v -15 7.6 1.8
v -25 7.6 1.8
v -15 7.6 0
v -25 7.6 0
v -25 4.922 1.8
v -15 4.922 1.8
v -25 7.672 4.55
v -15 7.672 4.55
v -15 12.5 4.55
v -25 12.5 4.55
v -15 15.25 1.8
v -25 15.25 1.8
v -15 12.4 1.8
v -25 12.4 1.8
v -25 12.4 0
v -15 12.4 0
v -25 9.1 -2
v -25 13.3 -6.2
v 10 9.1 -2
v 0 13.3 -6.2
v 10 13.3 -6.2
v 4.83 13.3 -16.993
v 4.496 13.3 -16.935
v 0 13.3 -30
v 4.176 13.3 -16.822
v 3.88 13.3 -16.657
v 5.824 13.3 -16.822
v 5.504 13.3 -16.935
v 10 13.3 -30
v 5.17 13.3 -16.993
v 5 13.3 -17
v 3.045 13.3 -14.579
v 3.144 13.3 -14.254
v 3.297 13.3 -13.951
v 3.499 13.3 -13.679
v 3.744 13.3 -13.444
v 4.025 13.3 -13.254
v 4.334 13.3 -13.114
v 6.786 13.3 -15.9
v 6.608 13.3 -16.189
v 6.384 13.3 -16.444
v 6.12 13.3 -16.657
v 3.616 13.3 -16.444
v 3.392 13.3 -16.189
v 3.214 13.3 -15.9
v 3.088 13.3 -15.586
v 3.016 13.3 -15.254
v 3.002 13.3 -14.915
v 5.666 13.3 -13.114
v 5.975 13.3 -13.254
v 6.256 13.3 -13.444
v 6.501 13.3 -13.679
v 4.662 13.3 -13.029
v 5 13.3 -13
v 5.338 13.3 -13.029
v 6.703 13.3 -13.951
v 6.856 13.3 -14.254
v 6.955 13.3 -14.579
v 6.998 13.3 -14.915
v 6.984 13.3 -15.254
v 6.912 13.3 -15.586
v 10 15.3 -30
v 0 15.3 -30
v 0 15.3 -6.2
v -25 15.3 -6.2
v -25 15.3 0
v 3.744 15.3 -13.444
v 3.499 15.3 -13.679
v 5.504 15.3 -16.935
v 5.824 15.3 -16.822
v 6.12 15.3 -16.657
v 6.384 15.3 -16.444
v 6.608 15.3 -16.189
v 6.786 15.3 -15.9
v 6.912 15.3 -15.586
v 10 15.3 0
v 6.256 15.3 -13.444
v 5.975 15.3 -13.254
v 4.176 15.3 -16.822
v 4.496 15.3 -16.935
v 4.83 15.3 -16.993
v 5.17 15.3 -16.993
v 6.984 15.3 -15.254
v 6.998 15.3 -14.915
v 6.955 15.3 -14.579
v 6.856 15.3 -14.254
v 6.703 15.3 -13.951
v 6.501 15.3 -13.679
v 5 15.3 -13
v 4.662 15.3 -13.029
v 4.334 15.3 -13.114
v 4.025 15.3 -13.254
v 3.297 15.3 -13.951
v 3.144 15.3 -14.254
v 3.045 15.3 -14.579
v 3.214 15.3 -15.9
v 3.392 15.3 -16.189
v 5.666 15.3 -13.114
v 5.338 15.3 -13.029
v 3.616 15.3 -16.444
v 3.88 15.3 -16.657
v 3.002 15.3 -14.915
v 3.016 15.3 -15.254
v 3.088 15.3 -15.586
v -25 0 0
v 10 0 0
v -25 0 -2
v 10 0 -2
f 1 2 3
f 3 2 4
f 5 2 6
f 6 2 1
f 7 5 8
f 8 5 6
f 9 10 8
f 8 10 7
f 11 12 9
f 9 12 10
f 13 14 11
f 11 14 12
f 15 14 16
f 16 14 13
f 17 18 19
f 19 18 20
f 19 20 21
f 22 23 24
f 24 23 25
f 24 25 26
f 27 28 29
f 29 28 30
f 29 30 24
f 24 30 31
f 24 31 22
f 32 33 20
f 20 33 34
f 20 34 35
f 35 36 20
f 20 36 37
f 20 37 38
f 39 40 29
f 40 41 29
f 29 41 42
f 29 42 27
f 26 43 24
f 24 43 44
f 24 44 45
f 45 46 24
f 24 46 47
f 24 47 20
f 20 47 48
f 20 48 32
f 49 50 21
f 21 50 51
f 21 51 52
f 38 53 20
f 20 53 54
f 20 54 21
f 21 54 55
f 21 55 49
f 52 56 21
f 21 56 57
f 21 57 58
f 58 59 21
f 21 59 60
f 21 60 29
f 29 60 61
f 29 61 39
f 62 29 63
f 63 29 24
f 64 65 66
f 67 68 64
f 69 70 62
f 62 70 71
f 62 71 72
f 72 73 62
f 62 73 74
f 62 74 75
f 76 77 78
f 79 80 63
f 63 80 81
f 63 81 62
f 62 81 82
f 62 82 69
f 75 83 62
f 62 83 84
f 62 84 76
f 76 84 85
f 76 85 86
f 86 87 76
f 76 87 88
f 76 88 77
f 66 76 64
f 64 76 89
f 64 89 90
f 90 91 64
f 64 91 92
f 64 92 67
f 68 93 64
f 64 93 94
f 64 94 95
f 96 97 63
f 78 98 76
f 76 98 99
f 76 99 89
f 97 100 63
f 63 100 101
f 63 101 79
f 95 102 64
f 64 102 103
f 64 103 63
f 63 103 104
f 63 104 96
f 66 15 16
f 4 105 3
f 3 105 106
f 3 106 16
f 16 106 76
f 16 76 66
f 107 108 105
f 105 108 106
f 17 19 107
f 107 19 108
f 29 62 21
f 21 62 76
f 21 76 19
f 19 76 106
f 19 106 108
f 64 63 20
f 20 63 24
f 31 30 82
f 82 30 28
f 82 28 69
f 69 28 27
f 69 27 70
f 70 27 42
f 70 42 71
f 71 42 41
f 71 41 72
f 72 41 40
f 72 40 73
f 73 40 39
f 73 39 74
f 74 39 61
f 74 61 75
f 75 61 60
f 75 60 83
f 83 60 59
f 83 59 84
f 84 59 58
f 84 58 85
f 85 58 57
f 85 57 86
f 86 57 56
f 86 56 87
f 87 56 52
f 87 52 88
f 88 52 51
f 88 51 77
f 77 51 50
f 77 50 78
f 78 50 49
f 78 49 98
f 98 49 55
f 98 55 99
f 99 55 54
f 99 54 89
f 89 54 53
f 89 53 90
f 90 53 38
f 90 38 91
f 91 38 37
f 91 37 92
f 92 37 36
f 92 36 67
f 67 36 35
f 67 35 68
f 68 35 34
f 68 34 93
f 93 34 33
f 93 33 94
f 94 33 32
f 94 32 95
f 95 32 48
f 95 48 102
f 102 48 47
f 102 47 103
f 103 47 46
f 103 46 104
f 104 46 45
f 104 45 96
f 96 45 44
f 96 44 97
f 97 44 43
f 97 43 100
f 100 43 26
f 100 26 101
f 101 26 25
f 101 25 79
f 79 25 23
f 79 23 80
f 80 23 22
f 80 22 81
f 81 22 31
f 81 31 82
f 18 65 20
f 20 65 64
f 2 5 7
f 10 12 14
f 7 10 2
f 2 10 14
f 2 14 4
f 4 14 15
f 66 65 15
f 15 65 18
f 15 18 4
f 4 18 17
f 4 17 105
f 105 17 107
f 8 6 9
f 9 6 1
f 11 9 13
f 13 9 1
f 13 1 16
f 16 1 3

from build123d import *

# Parameters (mm, degrees)
BOSS_EXTRUDE2_DEPTH = 10
CUT_EXTRUDE9_DEPTH  = 3
BOSS_EXTRUDE3_DEPTH = 25
CUT_EXTRUDE11_DEPTH = 15


with BuildPart() as part:
    # Sketch1 → Boss-Extrude2 (new body)
    with BuildSketch(Plane(origin=(0, 0, 0), x_dir=(0, 0, -1), z_dir=(1, 0, 0))):
        Polygon((0, 0), (2, 0), (2, 9.1), (6.2, 13.3), (30, 13.3), (30, 15.3), (0, 15.3), align=None)
    extrude(amount=BOSS_EXTRUDE2_DEPTH)

    # Sketch2 → Cut-Extrude9 (cut)
    with BuildSketch(Plane(origin=(0, 15.3, 0), x_dir=(1, 0, 0), z_dir=(0, 1, 0))):
        with BuildLine():
            ThreePointArc((7, 15), (5, 17), (3, 15))
            Line((3, 15), (7, 15))
        make_face()
        with BuildLine():
            Line((7, 15), (3, 15))
            ThreePointArc((3, 15), (5, 13), (7, 15))
        make_face()
    extrude(amount=-CUT_EXTRUDE9_DEPTH, mode=Mode.SUBTRACT)

    # Sketch1<14> → Boss-Extrude3 (add)
    with BuildSketch(Plane(origin=(0, 0, 0), x_dir=(0, 0, -1), z_dir=(1, 0, 0))):
        Polygon((0, 7.6), (0, 0), (2, 0), (2, 9.1), (6.2, 13.3), (6.2, 15.3), (0, 15.3), (0, 12.4), (-1.8, 12.4), (-1.8, 15.25), (-4.55, 12.5), (-4.55, 7.671680622), (-1.8, 4.921680622), (-1.8, 7.6), align=None)
    extrude(amount=-BOSS_EXTRUDE3_DEPTH)

    # Sketch1<18> → Cut-Extrude11 (cut)
    with BuildSketch(Plane(origin=(0, 0, 0), x_dir=(0, 0, -1), z_dir=(1, 0, 0))):
        Polygon((-1.8, 7.6), (0, 7.6), (0, 12.4), (-1.8, 12.4), (-1.8, 15.25), (-4.55, 12.5), (-4.55, 7.671680622), (-1.8, 4.921680622), align=None)
    extrude(amount=-CUT_EXTRUDE11_DEPTH, mode=Mode.SUBTRACT)


solid = part.part
